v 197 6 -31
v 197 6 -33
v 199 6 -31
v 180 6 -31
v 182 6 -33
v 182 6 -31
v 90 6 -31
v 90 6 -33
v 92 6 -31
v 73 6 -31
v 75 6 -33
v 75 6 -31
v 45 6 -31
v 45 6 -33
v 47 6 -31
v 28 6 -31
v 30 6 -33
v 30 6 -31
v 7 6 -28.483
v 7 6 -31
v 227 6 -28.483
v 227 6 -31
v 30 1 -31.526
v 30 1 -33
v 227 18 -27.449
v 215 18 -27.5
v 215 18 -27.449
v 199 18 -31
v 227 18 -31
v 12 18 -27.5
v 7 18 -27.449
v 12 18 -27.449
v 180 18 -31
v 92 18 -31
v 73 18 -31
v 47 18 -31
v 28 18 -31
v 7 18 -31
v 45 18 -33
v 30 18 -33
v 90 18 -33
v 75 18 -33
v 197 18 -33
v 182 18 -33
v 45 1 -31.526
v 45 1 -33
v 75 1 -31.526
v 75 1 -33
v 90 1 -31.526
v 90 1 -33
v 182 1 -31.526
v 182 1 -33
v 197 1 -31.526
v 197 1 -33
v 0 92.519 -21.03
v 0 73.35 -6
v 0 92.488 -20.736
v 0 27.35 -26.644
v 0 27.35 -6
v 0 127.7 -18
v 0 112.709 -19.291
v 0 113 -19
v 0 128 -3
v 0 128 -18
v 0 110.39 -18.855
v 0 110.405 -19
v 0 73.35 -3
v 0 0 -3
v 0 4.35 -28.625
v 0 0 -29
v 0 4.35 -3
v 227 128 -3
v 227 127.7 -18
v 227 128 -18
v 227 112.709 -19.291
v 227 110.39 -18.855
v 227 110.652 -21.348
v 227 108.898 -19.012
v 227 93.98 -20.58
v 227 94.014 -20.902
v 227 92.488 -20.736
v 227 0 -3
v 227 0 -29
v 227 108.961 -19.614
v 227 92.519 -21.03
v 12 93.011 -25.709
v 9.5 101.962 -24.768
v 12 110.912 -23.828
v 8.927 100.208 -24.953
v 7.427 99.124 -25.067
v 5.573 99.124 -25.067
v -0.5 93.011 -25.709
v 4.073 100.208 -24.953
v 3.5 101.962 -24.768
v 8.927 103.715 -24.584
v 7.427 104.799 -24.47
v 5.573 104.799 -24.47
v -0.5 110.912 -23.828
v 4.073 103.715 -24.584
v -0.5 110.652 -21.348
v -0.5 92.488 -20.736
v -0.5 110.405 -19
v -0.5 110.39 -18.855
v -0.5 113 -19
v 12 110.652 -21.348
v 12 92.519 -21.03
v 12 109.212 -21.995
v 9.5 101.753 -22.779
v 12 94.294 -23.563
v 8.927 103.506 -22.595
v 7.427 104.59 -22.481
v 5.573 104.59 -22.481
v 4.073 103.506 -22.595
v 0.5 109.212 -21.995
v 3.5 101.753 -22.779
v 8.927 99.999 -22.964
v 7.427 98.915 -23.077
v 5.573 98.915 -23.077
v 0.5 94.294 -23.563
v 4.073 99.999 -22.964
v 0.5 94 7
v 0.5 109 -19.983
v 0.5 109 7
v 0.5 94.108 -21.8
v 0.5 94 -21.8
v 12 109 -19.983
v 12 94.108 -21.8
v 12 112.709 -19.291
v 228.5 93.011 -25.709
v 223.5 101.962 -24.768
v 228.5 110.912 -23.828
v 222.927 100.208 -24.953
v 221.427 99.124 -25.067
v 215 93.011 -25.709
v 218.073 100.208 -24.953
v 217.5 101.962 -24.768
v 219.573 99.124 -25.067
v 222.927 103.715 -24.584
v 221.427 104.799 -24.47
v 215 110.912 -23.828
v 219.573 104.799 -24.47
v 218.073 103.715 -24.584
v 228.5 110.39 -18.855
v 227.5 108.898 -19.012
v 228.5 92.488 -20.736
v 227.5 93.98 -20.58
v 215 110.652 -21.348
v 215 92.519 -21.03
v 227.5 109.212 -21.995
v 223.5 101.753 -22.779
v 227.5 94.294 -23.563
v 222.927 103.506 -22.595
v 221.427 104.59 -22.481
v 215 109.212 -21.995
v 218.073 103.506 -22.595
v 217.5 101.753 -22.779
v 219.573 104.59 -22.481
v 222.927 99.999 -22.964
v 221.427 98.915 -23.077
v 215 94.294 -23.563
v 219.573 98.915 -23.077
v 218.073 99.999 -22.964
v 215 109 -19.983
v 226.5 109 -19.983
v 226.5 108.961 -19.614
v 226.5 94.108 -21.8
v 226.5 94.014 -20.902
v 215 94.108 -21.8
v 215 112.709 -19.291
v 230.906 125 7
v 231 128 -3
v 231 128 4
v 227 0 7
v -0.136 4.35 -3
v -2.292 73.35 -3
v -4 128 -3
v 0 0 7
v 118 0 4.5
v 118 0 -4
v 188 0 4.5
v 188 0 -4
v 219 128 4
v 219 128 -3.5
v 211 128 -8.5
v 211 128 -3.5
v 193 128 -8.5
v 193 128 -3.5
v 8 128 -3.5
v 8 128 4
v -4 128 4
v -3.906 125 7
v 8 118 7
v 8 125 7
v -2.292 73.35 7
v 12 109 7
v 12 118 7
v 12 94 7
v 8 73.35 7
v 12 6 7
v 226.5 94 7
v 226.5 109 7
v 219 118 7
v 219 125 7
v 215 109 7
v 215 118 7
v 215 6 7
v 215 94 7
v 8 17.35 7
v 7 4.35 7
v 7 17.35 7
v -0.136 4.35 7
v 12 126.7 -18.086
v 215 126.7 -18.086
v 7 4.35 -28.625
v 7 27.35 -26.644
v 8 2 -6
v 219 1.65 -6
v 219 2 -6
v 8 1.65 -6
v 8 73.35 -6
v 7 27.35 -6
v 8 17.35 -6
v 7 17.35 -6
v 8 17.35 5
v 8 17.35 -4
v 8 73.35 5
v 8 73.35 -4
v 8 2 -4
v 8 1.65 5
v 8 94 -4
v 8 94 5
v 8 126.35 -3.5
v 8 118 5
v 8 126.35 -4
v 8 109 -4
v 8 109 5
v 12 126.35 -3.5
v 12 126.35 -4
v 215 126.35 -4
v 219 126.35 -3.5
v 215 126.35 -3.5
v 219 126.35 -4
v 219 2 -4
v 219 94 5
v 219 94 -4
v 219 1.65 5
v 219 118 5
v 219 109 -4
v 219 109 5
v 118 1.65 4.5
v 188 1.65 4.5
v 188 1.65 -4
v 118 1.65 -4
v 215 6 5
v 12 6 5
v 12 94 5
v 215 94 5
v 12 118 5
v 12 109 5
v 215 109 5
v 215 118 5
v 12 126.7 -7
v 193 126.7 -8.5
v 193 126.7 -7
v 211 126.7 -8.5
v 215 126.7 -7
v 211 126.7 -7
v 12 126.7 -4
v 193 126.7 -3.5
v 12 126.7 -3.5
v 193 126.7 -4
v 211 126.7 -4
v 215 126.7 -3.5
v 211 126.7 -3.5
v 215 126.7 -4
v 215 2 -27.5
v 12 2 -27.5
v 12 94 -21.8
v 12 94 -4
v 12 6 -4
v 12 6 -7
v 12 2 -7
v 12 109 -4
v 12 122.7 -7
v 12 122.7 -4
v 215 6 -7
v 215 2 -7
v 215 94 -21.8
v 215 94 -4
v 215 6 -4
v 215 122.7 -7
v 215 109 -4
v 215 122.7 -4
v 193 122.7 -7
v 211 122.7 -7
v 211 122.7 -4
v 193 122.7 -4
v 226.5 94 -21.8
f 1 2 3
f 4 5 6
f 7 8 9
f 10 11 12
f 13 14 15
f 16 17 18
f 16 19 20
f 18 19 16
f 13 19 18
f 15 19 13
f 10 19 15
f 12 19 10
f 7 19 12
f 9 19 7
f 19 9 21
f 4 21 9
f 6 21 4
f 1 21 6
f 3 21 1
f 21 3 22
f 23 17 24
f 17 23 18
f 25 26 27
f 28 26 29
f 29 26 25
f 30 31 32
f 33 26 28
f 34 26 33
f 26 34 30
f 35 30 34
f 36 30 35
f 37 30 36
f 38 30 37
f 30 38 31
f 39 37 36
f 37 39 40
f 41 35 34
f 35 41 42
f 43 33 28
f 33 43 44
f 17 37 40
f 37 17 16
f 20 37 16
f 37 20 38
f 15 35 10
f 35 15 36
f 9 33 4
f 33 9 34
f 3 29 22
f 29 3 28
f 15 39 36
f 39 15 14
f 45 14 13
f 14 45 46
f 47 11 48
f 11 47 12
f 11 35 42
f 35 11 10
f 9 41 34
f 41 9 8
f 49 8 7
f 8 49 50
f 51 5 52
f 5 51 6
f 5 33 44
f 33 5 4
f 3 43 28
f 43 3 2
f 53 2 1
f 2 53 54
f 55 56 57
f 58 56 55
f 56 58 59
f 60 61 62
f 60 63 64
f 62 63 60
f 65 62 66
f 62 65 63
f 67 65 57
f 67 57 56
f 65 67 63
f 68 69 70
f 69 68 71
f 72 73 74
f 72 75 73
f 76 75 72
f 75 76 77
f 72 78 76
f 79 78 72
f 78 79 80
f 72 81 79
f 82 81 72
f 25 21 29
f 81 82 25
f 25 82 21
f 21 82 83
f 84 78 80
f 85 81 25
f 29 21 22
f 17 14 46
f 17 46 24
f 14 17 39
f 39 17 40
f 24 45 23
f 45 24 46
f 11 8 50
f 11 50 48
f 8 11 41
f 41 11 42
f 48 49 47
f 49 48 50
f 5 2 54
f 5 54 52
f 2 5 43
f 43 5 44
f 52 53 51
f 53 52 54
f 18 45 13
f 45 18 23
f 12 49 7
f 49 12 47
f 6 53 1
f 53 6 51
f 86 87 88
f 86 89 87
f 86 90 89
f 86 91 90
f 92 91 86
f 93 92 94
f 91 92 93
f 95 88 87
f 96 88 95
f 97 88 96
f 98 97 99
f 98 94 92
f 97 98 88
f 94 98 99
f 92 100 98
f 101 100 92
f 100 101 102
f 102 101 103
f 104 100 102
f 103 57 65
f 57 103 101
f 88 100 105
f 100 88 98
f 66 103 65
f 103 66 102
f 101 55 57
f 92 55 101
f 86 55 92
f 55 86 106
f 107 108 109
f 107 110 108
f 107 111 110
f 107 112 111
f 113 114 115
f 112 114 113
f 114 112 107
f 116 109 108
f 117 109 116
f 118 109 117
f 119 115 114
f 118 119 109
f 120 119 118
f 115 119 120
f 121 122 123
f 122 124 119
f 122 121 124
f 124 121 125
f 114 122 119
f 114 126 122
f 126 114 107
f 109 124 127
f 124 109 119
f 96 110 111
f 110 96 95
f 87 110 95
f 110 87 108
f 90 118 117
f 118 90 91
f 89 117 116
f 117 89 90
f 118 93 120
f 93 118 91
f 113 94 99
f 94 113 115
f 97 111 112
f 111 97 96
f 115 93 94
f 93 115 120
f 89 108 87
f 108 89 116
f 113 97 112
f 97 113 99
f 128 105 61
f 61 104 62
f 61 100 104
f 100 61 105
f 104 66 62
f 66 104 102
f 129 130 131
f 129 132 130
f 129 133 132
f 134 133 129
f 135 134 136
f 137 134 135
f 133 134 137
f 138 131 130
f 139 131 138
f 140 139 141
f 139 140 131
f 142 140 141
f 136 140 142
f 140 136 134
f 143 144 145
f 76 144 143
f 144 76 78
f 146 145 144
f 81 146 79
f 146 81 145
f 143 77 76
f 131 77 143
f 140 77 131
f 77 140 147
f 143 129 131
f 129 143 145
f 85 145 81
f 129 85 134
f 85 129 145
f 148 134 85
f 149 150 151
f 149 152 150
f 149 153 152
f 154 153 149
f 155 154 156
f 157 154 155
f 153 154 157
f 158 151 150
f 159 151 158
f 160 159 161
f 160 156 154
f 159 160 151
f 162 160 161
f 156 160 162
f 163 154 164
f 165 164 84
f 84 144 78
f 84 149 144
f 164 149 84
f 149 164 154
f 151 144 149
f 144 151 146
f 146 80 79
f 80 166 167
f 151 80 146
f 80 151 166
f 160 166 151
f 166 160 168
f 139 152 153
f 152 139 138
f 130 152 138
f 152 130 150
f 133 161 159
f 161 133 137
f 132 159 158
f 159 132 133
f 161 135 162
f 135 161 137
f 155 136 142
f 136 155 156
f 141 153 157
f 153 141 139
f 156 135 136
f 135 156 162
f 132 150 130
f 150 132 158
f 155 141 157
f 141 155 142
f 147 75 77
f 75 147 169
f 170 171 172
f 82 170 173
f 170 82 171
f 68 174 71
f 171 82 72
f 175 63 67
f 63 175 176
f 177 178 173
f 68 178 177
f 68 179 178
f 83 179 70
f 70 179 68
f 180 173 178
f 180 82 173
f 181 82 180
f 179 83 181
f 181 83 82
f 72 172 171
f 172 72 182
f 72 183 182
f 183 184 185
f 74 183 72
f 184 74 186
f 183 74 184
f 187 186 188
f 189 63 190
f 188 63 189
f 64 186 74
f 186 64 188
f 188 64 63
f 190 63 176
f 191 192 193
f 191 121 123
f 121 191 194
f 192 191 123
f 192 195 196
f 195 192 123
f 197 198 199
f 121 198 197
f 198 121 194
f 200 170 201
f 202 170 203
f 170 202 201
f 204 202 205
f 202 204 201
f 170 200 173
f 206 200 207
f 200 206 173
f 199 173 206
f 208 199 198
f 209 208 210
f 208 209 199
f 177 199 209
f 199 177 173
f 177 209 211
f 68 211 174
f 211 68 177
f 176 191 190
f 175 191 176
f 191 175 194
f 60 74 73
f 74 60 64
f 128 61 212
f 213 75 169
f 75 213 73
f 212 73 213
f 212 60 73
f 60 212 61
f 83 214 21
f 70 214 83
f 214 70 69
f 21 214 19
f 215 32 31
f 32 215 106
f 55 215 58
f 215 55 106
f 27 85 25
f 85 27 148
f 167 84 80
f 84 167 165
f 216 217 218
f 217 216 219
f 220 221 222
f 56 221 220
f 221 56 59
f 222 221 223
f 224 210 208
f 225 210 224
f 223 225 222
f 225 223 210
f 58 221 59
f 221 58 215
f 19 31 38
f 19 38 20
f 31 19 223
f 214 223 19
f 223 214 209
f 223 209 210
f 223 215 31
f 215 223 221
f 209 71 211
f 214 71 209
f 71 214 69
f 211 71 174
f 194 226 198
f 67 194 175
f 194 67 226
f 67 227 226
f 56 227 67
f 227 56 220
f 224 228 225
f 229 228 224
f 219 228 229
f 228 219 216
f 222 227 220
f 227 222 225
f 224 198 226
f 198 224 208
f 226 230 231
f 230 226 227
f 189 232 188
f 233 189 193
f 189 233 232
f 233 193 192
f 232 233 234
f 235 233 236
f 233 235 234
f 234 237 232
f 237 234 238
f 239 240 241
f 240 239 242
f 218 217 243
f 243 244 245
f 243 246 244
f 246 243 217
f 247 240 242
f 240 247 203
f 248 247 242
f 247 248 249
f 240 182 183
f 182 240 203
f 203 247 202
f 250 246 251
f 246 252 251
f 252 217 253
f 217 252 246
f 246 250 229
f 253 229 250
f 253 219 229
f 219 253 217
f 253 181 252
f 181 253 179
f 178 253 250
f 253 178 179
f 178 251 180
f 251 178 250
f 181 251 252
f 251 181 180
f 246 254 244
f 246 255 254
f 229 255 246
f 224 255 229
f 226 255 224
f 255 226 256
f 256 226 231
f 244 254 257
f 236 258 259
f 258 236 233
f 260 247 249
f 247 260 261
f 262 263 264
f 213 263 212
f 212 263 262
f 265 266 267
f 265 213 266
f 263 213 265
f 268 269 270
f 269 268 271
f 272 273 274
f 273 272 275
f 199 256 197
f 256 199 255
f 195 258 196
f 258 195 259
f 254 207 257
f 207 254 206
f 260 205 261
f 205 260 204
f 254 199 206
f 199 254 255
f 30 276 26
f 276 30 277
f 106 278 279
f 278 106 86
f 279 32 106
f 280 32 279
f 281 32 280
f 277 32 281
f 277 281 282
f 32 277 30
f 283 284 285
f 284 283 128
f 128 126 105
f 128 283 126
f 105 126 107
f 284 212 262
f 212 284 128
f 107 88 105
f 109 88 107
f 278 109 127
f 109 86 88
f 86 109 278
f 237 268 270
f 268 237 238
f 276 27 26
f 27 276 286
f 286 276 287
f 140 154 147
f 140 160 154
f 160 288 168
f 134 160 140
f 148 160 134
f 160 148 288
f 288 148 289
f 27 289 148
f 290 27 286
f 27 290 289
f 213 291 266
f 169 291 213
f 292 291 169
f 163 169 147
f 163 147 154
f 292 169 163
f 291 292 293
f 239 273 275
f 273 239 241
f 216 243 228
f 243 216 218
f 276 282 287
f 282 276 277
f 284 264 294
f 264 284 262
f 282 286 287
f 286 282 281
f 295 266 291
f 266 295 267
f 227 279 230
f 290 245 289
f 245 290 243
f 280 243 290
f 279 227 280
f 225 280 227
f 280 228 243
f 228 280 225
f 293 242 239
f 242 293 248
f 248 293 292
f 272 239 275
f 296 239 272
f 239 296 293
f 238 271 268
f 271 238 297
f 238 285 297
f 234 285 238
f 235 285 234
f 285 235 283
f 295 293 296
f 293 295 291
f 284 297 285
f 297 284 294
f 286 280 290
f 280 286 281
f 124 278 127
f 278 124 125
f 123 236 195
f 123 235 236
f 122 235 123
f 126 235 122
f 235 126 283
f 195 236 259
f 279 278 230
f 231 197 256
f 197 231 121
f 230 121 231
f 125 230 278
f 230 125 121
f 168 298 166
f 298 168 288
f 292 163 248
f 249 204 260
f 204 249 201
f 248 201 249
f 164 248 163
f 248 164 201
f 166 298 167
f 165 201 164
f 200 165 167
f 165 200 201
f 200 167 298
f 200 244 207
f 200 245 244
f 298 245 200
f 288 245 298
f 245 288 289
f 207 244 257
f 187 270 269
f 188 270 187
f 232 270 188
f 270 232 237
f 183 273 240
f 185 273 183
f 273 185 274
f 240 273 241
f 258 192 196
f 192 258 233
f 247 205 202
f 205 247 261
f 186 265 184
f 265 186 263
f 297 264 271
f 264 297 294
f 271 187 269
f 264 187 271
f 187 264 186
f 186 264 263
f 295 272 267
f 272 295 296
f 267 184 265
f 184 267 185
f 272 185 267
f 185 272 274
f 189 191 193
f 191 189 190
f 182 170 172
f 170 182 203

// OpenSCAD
fascia_top_width = 235;
fascia_bottom_width = 227;
fascia_height = 128;
fascia_depth = 5;

fascia_top_bottom_width_delta = fascia_top_width - fascia_bottom_width;

tablet_width = 211;
tablet_height = 124.7;
tablet_depth = 8;

fascia_bottom_tablet_width_delta = fascia_bottom_width - tablet_width;
fascia_tablet_height_delta = fascia_height - tablet_height;

sony_width = 182;
sony_depth = 133;
sony_front_height = 103;
sony_rear_height = 53;
sony_rear_depth = 110;
sony_front_depth = sony_depth - sony_rear_depth;

fascia_bottom_sony_width_delta = fascia_bottom_width - sony_width;
fascia_sony_front_height_delta = fascia_height - sony_front_height;


// Side flares to fill in the entire gap
module side_flares() {
        translate([0, 0, -fascia_depth+2])
            linear_extrude(fascia_depth+5)
                polygon(points=[
                    [0, 0], // bottom left
                    [fascia_bottom_width, 0], // bottom right
                    [231, fascia_height], // top right
                    [-(fascia_top_bottom_width_delta / 2), fascia_height] // top left
                ]);
}

// Usable area
module fascia_area() {
        translate([0, 0, -fascia_depth+2])
            linear_extrude(fascia_depth+5)
                square([fascia_bottom_width, fascia_height]);
}

difference() {
    difference() {
        union() {   
            difference() {
                union() {
                    side_flares();
                    fascia_area();
                    
                    translate([0, 0, -18])
                        linear_extrude(15)
                            square([fascia_bottom_width, fascia_height]);
                    
                    translate([0, 0, -18])
                        rotate([90, 90, 90])
                            linear_extrude(fascia_bottom_width)
                                polygon(points = [
                                    [0,0],
                                    [11,0],
                                    [0,tablet_height+3]
                                ]);
                        
                     bottom_hook();
                     
                     bolt_mount();
                     translate([214, 0, 0])
                        bolt_mount();
                     
                };
                
                translate([0, 0, -6])
                    tablet();
                
                // Void behind tablet
                translate([12, 2, -27.5])
                    color("green")
                        linear_extrude(50)
                            square([tablet_width-8, tablet_height]);
                
            };
            
            translate([12, 6, 5])
                difference() {
                    color("orange")
                        translate([-4, -5, 0])
                        linear_extrude(2)
                            square([tablet_width, tablet_height+1]);
                    color("red")
                        linear_extrude(2)
                            square([tablet_width-8, tablet_height-8]);
                }
                
                translate([12, 6, -5.5])
                difference() {
                    color("orange")
                        translate([-4, -4, -1.5])
                        linear_extrude(3)
                            square([tablet_width, tablet_height]);
                    color("red")
                        translate([0, 0, -1.5])
                        linear_extrude(3)
                            square([tablet_width-8, tablet_height-8]);
                }
                
        }
        
        bolt_hole();
            translate([fascia_top_width-24, 0, 0])
                bolt_hole();
        
        translate([8, fascia_height-10 ,-3.5])
                color("yellow")
                    linear_extrude(10.5)
                        square([fascia_top_width-24,20]);
        
        
        camera_bump();
        
        cupholder_angle_cutout();
        translate([fascia_top_width-12, 0, 0])
            cupholder_angle_cutout();
    
        // Delete 90% for test print
        /*translate([50, -50, -50])
            linear_extrude(100)
                square([300,300]);
        color("red")
             translate([-25, 0, -35])
                linear_extrude(50)
                    square([500,90]);
        color("red")
             translate([-25, 115, -35])
                linear_extrude(50)
                    square([500,90]);*/
    }
}

module cupholder_angle_cutout() {
    color("green")
            translate([8, fascia_height, 4])
                rotate([270, 180, 90])
                    linear_extrude(12)
                        polygon(points = [
                            [0, 0],
                            [3, 3],
                            [0, 3],
                        ]);
}

module camera_bump() {
    color("red")
        translate([fascia_top_width-(20+14+8), fascia_height-18, -8.5])
            linear_extrude(5)
                square([18, 18]);
}

module bolt_hole() {
    color("pink")
        translate([0.5, (fascia_height - 21) - 13, -21.8])
            linear_extrude(50)
                square([15, 15]);
}

module bolt_mount() {
    translate([-0.5, fascia_height-33, -25.5])
        union() {
            bolt_mount_triangle_support();
            
            rotate([6, 0, 0])
                difference() {
                    union() {
                        translate([0, -2, 0])
                            color("blue")
                                linear_extrude(5)
                                        square([15,18]);
                    }
                    color("lightgreen")
                        translate([1, -0.5, 2])
                            linear_extrude(5)
                                    square([13,15]);
                    color("red")
                            translate([7, 7, -2])
                                linear_extrude(6)
                                    circle(6/2);
                }        
        }
}

module bolt_mount_triangle_support() {
    color("red")
        translate([0, 15, 6.5])
            rotate([0, 90, 0])
                linear_extrude(13.5)
                        polygon(points = [
                            [0, 0],
                            [3, 0],
                            [0, 3],
                        ]);
}

module bottom_hook() {
    translate([0, 6, -31])
        difference() {
            union() {
                color("pink")
                    linear_extrude(4.5)
                        square([fascia_bottom_width, 12]);
                color("red")
                    translate([30, -5, -2])
                        linear_extrude(2)
                            square([15,17]);
                color("pink")
                    translate([75, -5, -2])
                        linear_extrude(2)
                            square([15,17]);
                color("pink")
                    translate([(fascia_bottom_width-15)-30, -5, -2])
                        linear_extrude(2)
                            square([15,17]);
                
                bottom_hook_triangle_support_duo();
                translate([45, 0, 0])
                    bottom_hook_triangle_support_duo();
                translate([fascia_bottom_width-75, 0, 0])
                    bottom_hook_triangle_support_duo();
            }
            
            bottom_hook_angled_cutout();
                translate([45, 0, 0])
            bottom_hook_angled_cutout();
                translate([fascia_bottom_width-75, 0, 0])
            bottom_hook_angled_cutout();
        }
}

module bottom_hook_angled_cutout() {
    color("lightgreen")
        rotate([6, 0, 0])
            translate([30, -6, 0])
                linear_extrude(3)
                    square([15, 6]);
}

module bottom_hook_triangle_support_duo() {
    bottom_hook_triangle_support();
    translate([75, 12, 0])
        rotate([180, 180, 0])
            bottom_hook_triangle_support();
}

module bottom_hook_triangle_support() {
    color("yellow")
        translate([30, 0, 0])
            rotate([270, 90, 0])
                linear_extrude(12)
                    polygon(points = [
                        [0, 0],
                        [2, 0],
                        [0, 2],
                    ]);
}

module tablet() {
    union() {
        // area
        translate([fascia_bottom_tablet_width_delta/2, fascia_tablet_height_delta / 2, 0])
            color("gray")    
                linear_extrude(tablet_depth+50)
                    square([tablet_width, tablet_height]);
        // volume controls
        translate([118, 0, 2])
            linear_extrude(8.5)
                square([70, 30]);
        // charging port
        translate([-3, (tablet_height-30)/2, 0]) // TODO: put x back to 0 to not leave gap in fascia
            union() {
                linear_extrude(20) // TODO: reduce height to not leave a gap in the fascia
                    square([11, 26]);
                translate([0, -30, 0])
                    union() {
                        linear_extrude(20)
                            square([30, 30]);
                        color("red")
                            translate([0, -13, -30])
                                linear_extrude(60)
                                    square([10, 23]);
                    }
            }
    }
}

module tablet_back() {
    translate([fascia_bottom_tablet_width_delta/2, fascia_tablet_height_delta / 2, 0])
        union() {
            difference() {
                color("orange")
                    translate([-3, -2, 0])
                        linear_extrude(5)
                            square([tablet_width+6, tablet_height+4]);
            }
        }
}
